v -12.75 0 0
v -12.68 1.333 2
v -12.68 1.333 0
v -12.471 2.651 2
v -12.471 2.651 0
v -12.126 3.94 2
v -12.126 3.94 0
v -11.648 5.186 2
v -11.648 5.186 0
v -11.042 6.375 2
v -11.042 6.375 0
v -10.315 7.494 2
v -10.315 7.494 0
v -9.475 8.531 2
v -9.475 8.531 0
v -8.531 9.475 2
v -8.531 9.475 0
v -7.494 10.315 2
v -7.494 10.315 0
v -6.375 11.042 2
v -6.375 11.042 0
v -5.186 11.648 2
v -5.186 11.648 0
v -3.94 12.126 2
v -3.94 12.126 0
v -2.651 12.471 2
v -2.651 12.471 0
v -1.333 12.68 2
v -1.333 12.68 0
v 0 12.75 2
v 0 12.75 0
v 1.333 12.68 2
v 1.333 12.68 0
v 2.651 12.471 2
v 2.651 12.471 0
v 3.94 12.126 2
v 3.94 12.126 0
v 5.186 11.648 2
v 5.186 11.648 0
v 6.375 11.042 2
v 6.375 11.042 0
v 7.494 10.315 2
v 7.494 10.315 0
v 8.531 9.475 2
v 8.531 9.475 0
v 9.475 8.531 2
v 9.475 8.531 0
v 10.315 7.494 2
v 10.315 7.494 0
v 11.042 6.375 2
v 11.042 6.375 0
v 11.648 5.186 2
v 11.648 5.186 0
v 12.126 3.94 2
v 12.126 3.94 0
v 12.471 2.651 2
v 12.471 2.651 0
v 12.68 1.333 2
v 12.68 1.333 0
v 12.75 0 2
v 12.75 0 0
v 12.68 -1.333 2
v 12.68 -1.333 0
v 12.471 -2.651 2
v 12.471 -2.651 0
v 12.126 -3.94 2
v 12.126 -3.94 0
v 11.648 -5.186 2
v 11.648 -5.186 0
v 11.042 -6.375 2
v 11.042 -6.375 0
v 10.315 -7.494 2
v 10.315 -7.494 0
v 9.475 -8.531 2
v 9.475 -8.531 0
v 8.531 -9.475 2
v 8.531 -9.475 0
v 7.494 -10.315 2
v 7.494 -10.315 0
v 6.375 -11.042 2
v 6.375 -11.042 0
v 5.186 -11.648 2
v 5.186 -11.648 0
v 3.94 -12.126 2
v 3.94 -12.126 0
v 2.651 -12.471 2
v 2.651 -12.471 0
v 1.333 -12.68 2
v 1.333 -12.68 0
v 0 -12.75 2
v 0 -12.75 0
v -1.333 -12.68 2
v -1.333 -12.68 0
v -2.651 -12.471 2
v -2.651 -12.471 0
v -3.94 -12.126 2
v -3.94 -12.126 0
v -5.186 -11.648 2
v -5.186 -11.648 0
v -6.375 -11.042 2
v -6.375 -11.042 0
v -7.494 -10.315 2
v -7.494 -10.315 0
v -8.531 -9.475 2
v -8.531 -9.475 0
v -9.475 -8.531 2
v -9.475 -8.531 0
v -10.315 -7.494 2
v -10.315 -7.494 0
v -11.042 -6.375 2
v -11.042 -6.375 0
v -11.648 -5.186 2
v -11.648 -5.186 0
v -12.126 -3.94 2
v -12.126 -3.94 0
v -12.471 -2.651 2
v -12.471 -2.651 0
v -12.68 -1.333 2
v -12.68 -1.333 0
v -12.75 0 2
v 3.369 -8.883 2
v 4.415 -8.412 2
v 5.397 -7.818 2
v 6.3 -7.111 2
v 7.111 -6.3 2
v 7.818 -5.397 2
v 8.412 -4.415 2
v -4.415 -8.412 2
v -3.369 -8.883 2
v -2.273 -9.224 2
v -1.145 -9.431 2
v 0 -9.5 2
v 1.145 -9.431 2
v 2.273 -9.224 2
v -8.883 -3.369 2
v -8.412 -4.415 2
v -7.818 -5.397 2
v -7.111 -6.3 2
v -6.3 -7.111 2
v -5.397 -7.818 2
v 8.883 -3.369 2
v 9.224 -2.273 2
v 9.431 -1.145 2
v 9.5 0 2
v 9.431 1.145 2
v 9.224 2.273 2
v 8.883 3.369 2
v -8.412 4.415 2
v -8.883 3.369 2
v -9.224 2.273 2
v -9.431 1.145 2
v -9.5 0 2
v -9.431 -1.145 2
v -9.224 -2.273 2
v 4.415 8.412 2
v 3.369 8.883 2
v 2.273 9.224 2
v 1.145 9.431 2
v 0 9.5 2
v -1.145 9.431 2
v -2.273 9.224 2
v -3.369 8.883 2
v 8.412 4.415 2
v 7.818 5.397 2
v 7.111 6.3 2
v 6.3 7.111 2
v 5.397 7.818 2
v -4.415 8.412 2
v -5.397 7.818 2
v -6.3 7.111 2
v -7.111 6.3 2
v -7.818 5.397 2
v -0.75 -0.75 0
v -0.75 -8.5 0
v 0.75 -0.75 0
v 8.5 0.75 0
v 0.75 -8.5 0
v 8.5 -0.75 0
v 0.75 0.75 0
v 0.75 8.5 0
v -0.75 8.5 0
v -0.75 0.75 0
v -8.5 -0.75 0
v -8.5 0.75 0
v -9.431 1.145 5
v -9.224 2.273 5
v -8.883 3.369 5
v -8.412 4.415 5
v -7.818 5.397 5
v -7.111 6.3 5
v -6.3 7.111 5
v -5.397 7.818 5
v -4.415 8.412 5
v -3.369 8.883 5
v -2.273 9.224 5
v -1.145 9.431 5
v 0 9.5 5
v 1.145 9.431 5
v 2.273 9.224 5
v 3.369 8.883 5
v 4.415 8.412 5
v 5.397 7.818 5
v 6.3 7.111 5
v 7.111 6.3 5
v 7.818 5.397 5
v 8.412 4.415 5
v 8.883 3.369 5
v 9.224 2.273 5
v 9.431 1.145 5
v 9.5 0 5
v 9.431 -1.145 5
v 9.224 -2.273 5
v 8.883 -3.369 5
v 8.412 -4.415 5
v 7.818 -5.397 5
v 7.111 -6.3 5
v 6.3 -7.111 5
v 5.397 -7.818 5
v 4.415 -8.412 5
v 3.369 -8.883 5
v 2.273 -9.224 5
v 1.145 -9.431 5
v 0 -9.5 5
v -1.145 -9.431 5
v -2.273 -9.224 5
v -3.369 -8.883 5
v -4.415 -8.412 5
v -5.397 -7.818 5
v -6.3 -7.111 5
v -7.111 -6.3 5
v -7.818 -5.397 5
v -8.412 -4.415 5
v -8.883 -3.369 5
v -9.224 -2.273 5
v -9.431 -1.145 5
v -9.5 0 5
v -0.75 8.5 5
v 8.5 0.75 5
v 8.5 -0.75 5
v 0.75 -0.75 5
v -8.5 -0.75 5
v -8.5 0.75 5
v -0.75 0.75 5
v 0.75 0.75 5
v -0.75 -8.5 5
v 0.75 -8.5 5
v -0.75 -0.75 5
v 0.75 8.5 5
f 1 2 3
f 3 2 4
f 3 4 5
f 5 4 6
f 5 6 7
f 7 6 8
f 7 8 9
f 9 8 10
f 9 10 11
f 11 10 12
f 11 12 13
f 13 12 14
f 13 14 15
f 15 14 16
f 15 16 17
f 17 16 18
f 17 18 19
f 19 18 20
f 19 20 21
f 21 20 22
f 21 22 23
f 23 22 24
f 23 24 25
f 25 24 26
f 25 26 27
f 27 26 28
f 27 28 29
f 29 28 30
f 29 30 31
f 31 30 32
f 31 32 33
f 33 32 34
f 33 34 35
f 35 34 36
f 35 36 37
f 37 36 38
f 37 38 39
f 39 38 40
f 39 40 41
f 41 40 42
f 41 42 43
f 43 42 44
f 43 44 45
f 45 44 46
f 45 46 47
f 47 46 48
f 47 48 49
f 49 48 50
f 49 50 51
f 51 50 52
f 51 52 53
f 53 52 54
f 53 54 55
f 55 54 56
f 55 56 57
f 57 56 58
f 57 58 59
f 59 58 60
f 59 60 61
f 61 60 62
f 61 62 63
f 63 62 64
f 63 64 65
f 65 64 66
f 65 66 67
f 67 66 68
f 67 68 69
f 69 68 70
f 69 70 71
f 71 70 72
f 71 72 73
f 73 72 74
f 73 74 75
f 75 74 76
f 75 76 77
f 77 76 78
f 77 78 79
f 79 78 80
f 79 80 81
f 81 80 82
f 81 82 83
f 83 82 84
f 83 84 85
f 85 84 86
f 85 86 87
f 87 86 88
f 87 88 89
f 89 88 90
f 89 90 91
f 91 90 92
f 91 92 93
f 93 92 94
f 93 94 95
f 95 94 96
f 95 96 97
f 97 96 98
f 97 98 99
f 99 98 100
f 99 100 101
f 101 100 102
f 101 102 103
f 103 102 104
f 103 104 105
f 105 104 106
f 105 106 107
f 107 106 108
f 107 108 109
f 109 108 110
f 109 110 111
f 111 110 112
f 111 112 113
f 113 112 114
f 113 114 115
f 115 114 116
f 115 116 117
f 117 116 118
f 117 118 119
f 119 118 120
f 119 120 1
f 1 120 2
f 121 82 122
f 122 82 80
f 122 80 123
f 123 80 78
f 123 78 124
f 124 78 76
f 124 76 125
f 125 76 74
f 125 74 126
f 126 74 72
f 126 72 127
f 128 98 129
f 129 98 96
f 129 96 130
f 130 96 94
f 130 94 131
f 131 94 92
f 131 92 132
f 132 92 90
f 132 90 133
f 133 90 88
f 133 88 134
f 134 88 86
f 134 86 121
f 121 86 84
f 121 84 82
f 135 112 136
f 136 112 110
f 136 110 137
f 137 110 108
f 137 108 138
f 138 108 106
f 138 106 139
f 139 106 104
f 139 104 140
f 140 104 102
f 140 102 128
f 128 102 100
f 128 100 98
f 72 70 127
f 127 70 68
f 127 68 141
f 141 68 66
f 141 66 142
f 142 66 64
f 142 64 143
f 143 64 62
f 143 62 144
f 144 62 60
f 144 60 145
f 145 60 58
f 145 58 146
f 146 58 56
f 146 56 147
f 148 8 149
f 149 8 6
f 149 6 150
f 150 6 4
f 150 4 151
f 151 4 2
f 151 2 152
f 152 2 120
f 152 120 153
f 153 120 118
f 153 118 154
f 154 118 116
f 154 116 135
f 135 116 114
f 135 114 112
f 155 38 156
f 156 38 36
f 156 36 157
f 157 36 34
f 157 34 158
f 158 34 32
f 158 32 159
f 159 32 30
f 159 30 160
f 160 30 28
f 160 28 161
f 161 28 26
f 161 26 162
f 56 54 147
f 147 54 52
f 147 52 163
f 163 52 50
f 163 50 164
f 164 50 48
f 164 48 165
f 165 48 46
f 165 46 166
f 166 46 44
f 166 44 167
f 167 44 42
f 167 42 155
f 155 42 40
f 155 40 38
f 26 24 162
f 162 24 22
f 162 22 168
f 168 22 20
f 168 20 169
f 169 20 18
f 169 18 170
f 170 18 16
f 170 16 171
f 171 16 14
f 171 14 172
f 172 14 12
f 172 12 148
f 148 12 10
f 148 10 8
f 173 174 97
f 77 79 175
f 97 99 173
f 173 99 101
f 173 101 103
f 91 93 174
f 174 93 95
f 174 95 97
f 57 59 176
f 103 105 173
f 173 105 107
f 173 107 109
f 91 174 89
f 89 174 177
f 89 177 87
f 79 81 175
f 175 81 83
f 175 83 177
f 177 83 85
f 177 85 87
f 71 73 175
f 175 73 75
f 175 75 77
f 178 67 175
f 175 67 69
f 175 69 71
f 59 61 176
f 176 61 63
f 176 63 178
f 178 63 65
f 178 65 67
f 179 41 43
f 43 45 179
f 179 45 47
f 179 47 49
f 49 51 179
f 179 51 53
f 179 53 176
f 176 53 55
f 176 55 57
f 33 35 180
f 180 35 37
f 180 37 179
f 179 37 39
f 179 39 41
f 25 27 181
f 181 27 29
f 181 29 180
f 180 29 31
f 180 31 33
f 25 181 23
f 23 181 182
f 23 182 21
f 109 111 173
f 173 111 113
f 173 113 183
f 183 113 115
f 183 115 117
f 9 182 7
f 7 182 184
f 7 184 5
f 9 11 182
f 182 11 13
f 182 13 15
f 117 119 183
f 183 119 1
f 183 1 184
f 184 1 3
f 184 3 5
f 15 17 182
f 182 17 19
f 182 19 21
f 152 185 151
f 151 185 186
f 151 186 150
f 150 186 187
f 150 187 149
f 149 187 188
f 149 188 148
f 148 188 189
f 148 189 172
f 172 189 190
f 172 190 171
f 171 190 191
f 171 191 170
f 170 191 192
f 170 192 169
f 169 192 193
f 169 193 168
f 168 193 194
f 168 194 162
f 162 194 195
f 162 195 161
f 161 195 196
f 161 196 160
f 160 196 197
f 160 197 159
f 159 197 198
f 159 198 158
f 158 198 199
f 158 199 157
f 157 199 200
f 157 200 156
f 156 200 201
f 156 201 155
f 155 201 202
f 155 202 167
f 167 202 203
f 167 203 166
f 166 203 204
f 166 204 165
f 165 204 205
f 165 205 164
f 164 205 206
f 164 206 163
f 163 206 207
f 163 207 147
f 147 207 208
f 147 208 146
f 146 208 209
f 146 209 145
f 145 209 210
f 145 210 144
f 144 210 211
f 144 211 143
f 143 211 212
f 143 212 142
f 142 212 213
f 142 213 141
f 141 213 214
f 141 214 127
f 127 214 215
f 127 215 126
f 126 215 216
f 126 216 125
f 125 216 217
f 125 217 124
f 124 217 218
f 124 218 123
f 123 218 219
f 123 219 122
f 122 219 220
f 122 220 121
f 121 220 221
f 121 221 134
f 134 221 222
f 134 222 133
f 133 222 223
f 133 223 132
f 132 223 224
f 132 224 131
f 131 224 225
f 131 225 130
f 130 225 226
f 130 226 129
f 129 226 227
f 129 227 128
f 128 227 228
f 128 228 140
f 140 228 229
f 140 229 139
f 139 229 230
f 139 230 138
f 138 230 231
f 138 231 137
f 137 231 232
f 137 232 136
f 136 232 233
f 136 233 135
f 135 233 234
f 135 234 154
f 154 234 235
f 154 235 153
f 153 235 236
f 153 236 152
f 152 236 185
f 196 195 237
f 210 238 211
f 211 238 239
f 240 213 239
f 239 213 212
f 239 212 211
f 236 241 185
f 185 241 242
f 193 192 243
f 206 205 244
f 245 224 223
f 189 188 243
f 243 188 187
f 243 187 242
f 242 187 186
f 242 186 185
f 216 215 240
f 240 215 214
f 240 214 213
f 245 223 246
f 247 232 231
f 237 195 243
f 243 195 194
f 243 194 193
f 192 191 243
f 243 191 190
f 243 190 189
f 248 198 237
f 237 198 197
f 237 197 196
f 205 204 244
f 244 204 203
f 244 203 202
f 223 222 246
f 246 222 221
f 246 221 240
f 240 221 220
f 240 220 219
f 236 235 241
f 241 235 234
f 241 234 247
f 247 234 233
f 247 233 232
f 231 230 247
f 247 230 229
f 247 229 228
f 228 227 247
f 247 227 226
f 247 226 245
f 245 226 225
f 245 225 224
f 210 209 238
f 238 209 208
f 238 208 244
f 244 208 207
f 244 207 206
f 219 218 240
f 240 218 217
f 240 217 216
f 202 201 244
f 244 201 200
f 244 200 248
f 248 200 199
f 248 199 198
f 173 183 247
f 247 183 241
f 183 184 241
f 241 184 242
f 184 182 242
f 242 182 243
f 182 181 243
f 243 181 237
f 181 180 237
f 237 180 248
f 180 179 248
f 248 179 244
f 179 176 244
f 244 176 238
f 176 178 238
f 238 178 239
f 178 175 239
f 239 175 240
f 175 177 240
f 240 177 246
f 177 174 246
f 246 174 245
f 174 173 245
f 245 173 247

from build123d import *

# Parameters (mm, degrees)
OUTER_SKETCH_R           = 12.75
OUTER_DEPTH              = 2
INNER_SKETCH_R           = 9.5
INNER_DEPTH              = 3
CUT_OUT_SKETCH_W         = 7.75
CUT_OUT_SKETCH_H         = 1.5
CUT_OUT_SKETCH_W_2       = 1.5
CUT_OUT_SKETCH_H_2       = 7.75
ODEBRAT_VYSUNUT_M1_DEPTH = 19.711627401


with BuildPart() as part:
    # Outer sketch → Outer (new body)
    with BuildSketch(Plane.XY):
        Circle(OUTER_SKETCH_R)
    extrude(amount=OUTER_DEPTH)

    # Inner sketch → Inner (add)
    with BuildSketch(Plane.XY.offset(2)):
        Circle(INNER_SKETCH_R)
    extrude(amount=INNER_DEPTH)

    # Cut out sketch → Odebrat vysunutím1 (cut, through all)
    with BuildSketch(Plane.XY.offset(5)):
        with Locations((-4.625, 0)):
            Rectangle(CUT_OUT_SKETCH_W, CUT_OUT_SKETCH_H)
        with Locations((0, 4.625)):
            Rectangle(CUT_OUT_SKETCH_W_2, CUT_OUT_SKETCH_H_2)
        Rectangle(CUT_OUT_SKETCH_W_2, CUT_OUT_SKETCH_H)
        with Locations((0, -4.625)):
            Rectangle(CUT_OUT_SKETCH_W_2, CUT_OUT_SKETCH_H_2)
        with Locations((4.625, 0)):
            Rectangle(CUT_OUT_SKETCH_W, CUT_OUT_SKETCH_H)
    extrude(amount=-ODEBRAT_VYSUNUT_M1_DEPTH, mode=Mode.SUBTRACT)


solid = part.part
